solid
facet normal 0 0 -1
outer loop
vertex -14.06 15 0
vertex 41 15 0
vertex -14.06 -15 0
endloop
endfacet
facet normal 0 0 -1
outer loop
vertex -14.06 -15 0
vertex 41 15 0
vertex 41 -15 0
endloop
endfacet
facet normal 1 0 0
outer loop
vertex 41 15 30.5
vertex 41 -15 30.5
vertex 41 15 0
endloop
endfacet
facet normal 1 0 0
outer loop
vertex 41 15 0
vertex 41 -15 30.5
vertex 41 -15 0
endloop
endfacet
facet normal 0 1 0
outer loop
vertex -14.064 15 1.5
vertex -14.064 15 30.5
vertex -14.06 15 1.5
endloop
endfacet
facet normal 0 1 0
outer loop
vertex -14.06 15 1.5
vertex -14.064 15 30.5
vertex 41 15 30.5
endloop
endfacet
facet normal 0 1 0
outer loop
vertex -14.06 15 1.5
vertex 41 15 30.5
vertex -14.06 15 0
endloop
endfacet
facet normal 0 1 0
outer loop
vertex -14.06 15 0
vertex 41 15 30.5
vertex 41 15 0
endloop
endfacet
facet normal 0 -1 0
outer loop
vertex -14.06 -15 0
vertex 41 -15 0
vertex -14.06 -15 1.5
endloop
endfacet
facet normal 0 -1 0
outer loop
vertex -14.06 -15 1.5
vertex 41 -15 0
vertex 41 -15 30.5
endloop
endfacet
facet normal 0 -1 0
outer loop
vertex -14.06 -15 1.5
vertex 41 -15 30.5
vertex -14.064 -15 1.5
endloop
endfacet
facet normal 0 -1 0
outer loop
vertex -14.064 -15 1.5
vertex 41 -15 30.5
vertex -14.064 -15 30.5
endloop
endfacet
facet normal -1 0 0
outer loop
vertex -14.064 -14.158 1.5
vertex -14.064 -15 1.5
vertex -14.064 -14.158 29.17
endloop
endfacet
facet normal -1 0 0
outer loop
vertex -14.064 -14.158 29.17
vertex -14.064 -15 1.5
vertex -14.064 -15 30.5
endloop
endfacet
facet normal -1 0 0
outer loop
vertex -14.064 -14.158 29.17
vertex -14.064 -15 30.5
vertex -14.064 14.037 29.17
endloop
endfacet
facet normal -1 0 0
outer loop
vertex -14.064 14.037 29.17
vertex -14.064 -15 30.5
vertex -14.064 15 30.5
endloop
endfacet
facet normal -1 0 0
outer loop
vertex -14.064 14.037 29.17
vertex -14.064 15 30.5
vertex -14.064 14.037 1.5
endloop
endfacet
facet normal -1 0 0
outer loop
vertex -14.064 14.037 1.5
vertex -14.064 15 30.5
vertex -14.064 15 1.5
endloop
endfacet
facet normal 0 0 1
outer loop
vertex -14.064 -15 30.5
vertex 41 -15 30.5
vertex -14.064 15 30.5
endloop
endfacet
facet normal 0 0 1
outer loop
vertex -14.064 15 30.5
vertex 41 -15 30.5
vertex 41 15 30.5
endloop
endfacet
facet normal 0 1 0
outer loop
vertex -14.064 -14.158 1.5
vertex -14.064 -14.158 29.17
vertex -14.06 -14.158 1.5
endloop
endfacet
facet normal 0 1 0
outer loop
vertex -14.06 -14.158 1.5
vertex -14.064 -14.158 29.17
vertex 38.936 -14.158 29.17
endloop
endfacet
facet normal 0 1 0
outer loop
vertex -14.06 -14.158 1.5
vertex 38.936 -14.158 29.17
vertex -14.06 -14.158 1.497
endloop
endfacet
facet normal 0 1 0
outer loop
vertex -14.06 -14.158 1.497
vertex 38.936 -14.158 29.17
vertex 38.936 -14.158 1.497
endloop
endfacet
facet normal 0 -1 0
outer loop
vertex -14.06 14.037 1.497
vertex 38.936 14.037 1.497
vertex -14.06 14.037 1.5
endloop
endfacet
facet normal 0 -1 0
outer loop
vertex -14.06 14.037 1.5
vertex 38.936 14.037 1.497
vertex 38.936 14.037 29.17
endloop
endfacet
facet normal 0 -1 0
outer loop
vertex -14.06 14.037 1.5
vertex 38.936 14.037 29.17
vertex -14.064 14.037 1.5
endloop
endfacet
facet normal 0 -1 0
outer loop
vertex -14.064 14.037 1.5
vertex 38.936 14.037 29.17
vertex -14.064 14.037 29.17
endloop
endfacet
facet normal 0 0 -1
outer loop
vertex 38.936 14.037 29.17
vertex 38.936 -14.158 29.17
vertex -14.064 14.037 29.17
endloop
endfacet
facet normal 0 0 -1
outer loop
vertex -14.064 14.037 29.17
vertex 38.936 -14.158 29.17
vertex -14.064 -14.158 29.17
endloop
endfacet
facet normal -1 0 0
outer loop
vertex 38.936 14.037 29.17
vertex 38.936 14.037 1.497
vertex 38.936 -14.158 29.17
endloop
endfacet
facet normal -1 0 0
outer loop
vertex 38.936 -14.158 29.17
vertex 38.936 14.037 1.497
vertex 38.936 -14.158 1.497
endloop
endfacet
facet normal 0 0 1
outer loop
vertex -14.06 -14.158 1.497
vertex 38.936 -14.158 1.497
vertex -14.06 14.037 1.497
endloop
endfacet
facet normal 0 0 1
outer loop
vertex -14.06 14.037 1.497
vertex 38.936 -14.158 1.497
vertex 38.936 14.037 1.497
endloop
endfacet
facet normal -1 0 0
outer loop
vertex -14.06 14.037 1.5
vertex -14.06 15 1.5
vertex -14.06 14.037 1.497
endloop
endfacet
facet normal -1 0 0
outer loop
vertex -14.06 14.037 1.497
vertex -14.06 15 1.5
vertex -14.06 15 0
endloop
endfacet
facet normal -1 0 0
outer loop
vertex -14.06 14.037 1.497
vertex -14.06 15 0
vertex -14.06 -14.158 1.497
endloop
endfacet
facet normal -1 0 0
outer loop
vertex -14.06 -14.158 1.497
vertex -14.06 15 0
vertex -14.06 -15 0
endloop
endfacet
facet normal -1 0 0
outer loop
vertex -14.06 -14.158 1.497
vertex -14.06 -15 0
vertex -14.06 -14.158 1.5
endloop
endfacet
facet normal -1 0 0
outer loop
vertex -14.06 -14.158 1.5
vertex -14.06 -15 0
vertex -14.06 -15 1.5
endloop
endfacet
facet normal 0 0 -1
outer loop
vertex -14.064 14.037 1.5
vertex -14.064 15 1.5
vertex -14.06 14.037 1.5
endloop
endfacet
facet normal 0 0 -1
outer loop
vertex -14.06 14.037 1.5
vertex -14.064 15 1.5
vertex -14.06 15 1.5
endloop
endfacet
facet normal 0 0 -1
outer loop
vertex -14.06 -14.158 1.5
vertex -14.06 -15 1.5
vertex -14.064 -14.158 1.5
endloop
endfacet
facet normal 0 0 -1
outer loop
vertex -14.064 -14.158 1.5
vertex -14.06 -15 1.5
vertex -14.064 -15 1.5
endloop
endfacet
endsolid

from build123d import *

# Parameters (mm, degrees)
SKETCH_1_W          = 82
SKETCH_1_H          = 30
EXTRUDE_1_DEPTH     = 1.5
SKETCH_2_W          = 1.997612732
SKETCH_2_H          = 25.79850023
EXTRUDE_3_DEPTH     = 3.5
SKETCH_4_W          = 1.75
SKETCH_4_H          = 25.79850023
EXTRUDE_4_DEPTH     = 26
SKETCH_5_W          = 55.064096776
SKETCH_5_H          = 30
EXTRUDE_5_DEPTH     = 29
SKETCH_6_W          = 26.352675357
SKETCH_6_H          = 28.194959652
CUT_EXTRUDE_1_DEPTH = 53
SKETCH_8_W          = 53
SKETCH_8_H          = 28.194959652
CUT_EXTRUDE_2_DEPTH = 1.32
CUT_EXTRUDE_5_DEPTH = 26.94
CUT_EXTRUDE_6_DEPTH = 26.94


with BuildPart() as part:
    # 草圖1 → 填料-伸長1 (new body)
    with BuildSketch(Plane.XY):
        Rectangle(SKETCH_1_W, SKETCH_1_H)
    extrude(amount=EXTRUDE_1_DEPTH)

    # 草圖2 → 填料-伸長3 (add)
    with BuildSketch(Plane(origin=(0, 0, 0), x_dir=(-1, 0, 0), z_dir=(0, 0, -1))):
        with Locations((40.001193634, 0)):
            Rectangle(SKETCH_2_W, SKETCH_2_H)
    extrude(amount=EXTRUDE_3_DEPTH)

    # 草圖4 → 填料-伸長4 (add)
    with BuildSketch(Plane(origin=(-39.002387268, 0, 0), x_dir=(0, 0, -1), z_dir=(1, 0, 0))):
        with Locations((2.625, 0)):
            Rectangle(SKETCH_4_W, SKETCH_4_H)
    extrude(amount=EXTRUDE_4_DEPTH)

    # 草圖5 → 填料-伸長5 (add)
    with BuildSketch(Plane.XY.offset(1.5)):
        with Locations((13.467951612, 0)):
            Rectangle(SKETCH_5_W, SKETCH_5_H)
    extrude(amount=EXTRUDE_5_DEPTH)

    # 草圖6 → 除料-伸長1 (cut)
    with BuildSketch(Plane.ZY.offset(14.064096776)):
        with Locations((15.993727328, -0.060074488)):
            Rectangle(SKETCH_6_W, SKETCH_6_H)
    extrude(amount=-CUT_EXTRUDE_1_DEPTH, mode=Mode.SUBTRACT)

    # 草圖8 → 除料-伸長2 (cut)
    with BuildSketch(Plane.XY.offset(2.817389649)):
        with Locations((12.435903224, -0.060074488)):
            Rectangle(SKETCH_8_W, SKETCH_8_H)
    extrude(amount=-CUT_EXTRUDE_2_DEPTH, mode=Mode.SUBTRACT)

    # 草圖10 → 除料-伸長5 (cut)
    with BuildSketch(Plane.ZY.offset(41)):
        Polygon((1.5, 15), (1.5, -16.079937927), (-4.357490946, -16.079937927), (-4.357490946, 16.240136561), (1.5, 16.240136561), align=None)
    extrude(amount=-CUT_EXTRUDE_5_DEPTH, mode=Mode.SUBTRACT)


with BuildPart() as cut_extrude_5_piece_1:
    # of the separate pieces the step leaves, piece 1, a body of its own (cut_extrude_5_pieces)
    add(part.part.solids().sort_by_distance((-14.06, 15, 0))[0])


with BuildPart() as cut_extrude_5_piece_2:
    # of the separate pieces the step leaves, piece 2, a body of its own (cut_extrude_5_pieces)
    add(part.part.solids().sort_by_distance((-14.06, 12.899250115, -1.75))[0])

    # 草圖11 → 除料-伸長6 (cut)
    with BuildSketch(Plane.ZY.offset(14.06)):
        Polygon((-1.75, 12.899250115), (-3.5, 12.899250115), (-4.749423893, -13.676958411), (-1.265103595, -13.676958411), (-1.265103595, 12.899250115), align=None)
    extrude(amount=-CUT_EXTRUDE_6_DEPTH, mode=Mode.SUBTRACT)


solid = cut_extrude_5_piece_1.part
